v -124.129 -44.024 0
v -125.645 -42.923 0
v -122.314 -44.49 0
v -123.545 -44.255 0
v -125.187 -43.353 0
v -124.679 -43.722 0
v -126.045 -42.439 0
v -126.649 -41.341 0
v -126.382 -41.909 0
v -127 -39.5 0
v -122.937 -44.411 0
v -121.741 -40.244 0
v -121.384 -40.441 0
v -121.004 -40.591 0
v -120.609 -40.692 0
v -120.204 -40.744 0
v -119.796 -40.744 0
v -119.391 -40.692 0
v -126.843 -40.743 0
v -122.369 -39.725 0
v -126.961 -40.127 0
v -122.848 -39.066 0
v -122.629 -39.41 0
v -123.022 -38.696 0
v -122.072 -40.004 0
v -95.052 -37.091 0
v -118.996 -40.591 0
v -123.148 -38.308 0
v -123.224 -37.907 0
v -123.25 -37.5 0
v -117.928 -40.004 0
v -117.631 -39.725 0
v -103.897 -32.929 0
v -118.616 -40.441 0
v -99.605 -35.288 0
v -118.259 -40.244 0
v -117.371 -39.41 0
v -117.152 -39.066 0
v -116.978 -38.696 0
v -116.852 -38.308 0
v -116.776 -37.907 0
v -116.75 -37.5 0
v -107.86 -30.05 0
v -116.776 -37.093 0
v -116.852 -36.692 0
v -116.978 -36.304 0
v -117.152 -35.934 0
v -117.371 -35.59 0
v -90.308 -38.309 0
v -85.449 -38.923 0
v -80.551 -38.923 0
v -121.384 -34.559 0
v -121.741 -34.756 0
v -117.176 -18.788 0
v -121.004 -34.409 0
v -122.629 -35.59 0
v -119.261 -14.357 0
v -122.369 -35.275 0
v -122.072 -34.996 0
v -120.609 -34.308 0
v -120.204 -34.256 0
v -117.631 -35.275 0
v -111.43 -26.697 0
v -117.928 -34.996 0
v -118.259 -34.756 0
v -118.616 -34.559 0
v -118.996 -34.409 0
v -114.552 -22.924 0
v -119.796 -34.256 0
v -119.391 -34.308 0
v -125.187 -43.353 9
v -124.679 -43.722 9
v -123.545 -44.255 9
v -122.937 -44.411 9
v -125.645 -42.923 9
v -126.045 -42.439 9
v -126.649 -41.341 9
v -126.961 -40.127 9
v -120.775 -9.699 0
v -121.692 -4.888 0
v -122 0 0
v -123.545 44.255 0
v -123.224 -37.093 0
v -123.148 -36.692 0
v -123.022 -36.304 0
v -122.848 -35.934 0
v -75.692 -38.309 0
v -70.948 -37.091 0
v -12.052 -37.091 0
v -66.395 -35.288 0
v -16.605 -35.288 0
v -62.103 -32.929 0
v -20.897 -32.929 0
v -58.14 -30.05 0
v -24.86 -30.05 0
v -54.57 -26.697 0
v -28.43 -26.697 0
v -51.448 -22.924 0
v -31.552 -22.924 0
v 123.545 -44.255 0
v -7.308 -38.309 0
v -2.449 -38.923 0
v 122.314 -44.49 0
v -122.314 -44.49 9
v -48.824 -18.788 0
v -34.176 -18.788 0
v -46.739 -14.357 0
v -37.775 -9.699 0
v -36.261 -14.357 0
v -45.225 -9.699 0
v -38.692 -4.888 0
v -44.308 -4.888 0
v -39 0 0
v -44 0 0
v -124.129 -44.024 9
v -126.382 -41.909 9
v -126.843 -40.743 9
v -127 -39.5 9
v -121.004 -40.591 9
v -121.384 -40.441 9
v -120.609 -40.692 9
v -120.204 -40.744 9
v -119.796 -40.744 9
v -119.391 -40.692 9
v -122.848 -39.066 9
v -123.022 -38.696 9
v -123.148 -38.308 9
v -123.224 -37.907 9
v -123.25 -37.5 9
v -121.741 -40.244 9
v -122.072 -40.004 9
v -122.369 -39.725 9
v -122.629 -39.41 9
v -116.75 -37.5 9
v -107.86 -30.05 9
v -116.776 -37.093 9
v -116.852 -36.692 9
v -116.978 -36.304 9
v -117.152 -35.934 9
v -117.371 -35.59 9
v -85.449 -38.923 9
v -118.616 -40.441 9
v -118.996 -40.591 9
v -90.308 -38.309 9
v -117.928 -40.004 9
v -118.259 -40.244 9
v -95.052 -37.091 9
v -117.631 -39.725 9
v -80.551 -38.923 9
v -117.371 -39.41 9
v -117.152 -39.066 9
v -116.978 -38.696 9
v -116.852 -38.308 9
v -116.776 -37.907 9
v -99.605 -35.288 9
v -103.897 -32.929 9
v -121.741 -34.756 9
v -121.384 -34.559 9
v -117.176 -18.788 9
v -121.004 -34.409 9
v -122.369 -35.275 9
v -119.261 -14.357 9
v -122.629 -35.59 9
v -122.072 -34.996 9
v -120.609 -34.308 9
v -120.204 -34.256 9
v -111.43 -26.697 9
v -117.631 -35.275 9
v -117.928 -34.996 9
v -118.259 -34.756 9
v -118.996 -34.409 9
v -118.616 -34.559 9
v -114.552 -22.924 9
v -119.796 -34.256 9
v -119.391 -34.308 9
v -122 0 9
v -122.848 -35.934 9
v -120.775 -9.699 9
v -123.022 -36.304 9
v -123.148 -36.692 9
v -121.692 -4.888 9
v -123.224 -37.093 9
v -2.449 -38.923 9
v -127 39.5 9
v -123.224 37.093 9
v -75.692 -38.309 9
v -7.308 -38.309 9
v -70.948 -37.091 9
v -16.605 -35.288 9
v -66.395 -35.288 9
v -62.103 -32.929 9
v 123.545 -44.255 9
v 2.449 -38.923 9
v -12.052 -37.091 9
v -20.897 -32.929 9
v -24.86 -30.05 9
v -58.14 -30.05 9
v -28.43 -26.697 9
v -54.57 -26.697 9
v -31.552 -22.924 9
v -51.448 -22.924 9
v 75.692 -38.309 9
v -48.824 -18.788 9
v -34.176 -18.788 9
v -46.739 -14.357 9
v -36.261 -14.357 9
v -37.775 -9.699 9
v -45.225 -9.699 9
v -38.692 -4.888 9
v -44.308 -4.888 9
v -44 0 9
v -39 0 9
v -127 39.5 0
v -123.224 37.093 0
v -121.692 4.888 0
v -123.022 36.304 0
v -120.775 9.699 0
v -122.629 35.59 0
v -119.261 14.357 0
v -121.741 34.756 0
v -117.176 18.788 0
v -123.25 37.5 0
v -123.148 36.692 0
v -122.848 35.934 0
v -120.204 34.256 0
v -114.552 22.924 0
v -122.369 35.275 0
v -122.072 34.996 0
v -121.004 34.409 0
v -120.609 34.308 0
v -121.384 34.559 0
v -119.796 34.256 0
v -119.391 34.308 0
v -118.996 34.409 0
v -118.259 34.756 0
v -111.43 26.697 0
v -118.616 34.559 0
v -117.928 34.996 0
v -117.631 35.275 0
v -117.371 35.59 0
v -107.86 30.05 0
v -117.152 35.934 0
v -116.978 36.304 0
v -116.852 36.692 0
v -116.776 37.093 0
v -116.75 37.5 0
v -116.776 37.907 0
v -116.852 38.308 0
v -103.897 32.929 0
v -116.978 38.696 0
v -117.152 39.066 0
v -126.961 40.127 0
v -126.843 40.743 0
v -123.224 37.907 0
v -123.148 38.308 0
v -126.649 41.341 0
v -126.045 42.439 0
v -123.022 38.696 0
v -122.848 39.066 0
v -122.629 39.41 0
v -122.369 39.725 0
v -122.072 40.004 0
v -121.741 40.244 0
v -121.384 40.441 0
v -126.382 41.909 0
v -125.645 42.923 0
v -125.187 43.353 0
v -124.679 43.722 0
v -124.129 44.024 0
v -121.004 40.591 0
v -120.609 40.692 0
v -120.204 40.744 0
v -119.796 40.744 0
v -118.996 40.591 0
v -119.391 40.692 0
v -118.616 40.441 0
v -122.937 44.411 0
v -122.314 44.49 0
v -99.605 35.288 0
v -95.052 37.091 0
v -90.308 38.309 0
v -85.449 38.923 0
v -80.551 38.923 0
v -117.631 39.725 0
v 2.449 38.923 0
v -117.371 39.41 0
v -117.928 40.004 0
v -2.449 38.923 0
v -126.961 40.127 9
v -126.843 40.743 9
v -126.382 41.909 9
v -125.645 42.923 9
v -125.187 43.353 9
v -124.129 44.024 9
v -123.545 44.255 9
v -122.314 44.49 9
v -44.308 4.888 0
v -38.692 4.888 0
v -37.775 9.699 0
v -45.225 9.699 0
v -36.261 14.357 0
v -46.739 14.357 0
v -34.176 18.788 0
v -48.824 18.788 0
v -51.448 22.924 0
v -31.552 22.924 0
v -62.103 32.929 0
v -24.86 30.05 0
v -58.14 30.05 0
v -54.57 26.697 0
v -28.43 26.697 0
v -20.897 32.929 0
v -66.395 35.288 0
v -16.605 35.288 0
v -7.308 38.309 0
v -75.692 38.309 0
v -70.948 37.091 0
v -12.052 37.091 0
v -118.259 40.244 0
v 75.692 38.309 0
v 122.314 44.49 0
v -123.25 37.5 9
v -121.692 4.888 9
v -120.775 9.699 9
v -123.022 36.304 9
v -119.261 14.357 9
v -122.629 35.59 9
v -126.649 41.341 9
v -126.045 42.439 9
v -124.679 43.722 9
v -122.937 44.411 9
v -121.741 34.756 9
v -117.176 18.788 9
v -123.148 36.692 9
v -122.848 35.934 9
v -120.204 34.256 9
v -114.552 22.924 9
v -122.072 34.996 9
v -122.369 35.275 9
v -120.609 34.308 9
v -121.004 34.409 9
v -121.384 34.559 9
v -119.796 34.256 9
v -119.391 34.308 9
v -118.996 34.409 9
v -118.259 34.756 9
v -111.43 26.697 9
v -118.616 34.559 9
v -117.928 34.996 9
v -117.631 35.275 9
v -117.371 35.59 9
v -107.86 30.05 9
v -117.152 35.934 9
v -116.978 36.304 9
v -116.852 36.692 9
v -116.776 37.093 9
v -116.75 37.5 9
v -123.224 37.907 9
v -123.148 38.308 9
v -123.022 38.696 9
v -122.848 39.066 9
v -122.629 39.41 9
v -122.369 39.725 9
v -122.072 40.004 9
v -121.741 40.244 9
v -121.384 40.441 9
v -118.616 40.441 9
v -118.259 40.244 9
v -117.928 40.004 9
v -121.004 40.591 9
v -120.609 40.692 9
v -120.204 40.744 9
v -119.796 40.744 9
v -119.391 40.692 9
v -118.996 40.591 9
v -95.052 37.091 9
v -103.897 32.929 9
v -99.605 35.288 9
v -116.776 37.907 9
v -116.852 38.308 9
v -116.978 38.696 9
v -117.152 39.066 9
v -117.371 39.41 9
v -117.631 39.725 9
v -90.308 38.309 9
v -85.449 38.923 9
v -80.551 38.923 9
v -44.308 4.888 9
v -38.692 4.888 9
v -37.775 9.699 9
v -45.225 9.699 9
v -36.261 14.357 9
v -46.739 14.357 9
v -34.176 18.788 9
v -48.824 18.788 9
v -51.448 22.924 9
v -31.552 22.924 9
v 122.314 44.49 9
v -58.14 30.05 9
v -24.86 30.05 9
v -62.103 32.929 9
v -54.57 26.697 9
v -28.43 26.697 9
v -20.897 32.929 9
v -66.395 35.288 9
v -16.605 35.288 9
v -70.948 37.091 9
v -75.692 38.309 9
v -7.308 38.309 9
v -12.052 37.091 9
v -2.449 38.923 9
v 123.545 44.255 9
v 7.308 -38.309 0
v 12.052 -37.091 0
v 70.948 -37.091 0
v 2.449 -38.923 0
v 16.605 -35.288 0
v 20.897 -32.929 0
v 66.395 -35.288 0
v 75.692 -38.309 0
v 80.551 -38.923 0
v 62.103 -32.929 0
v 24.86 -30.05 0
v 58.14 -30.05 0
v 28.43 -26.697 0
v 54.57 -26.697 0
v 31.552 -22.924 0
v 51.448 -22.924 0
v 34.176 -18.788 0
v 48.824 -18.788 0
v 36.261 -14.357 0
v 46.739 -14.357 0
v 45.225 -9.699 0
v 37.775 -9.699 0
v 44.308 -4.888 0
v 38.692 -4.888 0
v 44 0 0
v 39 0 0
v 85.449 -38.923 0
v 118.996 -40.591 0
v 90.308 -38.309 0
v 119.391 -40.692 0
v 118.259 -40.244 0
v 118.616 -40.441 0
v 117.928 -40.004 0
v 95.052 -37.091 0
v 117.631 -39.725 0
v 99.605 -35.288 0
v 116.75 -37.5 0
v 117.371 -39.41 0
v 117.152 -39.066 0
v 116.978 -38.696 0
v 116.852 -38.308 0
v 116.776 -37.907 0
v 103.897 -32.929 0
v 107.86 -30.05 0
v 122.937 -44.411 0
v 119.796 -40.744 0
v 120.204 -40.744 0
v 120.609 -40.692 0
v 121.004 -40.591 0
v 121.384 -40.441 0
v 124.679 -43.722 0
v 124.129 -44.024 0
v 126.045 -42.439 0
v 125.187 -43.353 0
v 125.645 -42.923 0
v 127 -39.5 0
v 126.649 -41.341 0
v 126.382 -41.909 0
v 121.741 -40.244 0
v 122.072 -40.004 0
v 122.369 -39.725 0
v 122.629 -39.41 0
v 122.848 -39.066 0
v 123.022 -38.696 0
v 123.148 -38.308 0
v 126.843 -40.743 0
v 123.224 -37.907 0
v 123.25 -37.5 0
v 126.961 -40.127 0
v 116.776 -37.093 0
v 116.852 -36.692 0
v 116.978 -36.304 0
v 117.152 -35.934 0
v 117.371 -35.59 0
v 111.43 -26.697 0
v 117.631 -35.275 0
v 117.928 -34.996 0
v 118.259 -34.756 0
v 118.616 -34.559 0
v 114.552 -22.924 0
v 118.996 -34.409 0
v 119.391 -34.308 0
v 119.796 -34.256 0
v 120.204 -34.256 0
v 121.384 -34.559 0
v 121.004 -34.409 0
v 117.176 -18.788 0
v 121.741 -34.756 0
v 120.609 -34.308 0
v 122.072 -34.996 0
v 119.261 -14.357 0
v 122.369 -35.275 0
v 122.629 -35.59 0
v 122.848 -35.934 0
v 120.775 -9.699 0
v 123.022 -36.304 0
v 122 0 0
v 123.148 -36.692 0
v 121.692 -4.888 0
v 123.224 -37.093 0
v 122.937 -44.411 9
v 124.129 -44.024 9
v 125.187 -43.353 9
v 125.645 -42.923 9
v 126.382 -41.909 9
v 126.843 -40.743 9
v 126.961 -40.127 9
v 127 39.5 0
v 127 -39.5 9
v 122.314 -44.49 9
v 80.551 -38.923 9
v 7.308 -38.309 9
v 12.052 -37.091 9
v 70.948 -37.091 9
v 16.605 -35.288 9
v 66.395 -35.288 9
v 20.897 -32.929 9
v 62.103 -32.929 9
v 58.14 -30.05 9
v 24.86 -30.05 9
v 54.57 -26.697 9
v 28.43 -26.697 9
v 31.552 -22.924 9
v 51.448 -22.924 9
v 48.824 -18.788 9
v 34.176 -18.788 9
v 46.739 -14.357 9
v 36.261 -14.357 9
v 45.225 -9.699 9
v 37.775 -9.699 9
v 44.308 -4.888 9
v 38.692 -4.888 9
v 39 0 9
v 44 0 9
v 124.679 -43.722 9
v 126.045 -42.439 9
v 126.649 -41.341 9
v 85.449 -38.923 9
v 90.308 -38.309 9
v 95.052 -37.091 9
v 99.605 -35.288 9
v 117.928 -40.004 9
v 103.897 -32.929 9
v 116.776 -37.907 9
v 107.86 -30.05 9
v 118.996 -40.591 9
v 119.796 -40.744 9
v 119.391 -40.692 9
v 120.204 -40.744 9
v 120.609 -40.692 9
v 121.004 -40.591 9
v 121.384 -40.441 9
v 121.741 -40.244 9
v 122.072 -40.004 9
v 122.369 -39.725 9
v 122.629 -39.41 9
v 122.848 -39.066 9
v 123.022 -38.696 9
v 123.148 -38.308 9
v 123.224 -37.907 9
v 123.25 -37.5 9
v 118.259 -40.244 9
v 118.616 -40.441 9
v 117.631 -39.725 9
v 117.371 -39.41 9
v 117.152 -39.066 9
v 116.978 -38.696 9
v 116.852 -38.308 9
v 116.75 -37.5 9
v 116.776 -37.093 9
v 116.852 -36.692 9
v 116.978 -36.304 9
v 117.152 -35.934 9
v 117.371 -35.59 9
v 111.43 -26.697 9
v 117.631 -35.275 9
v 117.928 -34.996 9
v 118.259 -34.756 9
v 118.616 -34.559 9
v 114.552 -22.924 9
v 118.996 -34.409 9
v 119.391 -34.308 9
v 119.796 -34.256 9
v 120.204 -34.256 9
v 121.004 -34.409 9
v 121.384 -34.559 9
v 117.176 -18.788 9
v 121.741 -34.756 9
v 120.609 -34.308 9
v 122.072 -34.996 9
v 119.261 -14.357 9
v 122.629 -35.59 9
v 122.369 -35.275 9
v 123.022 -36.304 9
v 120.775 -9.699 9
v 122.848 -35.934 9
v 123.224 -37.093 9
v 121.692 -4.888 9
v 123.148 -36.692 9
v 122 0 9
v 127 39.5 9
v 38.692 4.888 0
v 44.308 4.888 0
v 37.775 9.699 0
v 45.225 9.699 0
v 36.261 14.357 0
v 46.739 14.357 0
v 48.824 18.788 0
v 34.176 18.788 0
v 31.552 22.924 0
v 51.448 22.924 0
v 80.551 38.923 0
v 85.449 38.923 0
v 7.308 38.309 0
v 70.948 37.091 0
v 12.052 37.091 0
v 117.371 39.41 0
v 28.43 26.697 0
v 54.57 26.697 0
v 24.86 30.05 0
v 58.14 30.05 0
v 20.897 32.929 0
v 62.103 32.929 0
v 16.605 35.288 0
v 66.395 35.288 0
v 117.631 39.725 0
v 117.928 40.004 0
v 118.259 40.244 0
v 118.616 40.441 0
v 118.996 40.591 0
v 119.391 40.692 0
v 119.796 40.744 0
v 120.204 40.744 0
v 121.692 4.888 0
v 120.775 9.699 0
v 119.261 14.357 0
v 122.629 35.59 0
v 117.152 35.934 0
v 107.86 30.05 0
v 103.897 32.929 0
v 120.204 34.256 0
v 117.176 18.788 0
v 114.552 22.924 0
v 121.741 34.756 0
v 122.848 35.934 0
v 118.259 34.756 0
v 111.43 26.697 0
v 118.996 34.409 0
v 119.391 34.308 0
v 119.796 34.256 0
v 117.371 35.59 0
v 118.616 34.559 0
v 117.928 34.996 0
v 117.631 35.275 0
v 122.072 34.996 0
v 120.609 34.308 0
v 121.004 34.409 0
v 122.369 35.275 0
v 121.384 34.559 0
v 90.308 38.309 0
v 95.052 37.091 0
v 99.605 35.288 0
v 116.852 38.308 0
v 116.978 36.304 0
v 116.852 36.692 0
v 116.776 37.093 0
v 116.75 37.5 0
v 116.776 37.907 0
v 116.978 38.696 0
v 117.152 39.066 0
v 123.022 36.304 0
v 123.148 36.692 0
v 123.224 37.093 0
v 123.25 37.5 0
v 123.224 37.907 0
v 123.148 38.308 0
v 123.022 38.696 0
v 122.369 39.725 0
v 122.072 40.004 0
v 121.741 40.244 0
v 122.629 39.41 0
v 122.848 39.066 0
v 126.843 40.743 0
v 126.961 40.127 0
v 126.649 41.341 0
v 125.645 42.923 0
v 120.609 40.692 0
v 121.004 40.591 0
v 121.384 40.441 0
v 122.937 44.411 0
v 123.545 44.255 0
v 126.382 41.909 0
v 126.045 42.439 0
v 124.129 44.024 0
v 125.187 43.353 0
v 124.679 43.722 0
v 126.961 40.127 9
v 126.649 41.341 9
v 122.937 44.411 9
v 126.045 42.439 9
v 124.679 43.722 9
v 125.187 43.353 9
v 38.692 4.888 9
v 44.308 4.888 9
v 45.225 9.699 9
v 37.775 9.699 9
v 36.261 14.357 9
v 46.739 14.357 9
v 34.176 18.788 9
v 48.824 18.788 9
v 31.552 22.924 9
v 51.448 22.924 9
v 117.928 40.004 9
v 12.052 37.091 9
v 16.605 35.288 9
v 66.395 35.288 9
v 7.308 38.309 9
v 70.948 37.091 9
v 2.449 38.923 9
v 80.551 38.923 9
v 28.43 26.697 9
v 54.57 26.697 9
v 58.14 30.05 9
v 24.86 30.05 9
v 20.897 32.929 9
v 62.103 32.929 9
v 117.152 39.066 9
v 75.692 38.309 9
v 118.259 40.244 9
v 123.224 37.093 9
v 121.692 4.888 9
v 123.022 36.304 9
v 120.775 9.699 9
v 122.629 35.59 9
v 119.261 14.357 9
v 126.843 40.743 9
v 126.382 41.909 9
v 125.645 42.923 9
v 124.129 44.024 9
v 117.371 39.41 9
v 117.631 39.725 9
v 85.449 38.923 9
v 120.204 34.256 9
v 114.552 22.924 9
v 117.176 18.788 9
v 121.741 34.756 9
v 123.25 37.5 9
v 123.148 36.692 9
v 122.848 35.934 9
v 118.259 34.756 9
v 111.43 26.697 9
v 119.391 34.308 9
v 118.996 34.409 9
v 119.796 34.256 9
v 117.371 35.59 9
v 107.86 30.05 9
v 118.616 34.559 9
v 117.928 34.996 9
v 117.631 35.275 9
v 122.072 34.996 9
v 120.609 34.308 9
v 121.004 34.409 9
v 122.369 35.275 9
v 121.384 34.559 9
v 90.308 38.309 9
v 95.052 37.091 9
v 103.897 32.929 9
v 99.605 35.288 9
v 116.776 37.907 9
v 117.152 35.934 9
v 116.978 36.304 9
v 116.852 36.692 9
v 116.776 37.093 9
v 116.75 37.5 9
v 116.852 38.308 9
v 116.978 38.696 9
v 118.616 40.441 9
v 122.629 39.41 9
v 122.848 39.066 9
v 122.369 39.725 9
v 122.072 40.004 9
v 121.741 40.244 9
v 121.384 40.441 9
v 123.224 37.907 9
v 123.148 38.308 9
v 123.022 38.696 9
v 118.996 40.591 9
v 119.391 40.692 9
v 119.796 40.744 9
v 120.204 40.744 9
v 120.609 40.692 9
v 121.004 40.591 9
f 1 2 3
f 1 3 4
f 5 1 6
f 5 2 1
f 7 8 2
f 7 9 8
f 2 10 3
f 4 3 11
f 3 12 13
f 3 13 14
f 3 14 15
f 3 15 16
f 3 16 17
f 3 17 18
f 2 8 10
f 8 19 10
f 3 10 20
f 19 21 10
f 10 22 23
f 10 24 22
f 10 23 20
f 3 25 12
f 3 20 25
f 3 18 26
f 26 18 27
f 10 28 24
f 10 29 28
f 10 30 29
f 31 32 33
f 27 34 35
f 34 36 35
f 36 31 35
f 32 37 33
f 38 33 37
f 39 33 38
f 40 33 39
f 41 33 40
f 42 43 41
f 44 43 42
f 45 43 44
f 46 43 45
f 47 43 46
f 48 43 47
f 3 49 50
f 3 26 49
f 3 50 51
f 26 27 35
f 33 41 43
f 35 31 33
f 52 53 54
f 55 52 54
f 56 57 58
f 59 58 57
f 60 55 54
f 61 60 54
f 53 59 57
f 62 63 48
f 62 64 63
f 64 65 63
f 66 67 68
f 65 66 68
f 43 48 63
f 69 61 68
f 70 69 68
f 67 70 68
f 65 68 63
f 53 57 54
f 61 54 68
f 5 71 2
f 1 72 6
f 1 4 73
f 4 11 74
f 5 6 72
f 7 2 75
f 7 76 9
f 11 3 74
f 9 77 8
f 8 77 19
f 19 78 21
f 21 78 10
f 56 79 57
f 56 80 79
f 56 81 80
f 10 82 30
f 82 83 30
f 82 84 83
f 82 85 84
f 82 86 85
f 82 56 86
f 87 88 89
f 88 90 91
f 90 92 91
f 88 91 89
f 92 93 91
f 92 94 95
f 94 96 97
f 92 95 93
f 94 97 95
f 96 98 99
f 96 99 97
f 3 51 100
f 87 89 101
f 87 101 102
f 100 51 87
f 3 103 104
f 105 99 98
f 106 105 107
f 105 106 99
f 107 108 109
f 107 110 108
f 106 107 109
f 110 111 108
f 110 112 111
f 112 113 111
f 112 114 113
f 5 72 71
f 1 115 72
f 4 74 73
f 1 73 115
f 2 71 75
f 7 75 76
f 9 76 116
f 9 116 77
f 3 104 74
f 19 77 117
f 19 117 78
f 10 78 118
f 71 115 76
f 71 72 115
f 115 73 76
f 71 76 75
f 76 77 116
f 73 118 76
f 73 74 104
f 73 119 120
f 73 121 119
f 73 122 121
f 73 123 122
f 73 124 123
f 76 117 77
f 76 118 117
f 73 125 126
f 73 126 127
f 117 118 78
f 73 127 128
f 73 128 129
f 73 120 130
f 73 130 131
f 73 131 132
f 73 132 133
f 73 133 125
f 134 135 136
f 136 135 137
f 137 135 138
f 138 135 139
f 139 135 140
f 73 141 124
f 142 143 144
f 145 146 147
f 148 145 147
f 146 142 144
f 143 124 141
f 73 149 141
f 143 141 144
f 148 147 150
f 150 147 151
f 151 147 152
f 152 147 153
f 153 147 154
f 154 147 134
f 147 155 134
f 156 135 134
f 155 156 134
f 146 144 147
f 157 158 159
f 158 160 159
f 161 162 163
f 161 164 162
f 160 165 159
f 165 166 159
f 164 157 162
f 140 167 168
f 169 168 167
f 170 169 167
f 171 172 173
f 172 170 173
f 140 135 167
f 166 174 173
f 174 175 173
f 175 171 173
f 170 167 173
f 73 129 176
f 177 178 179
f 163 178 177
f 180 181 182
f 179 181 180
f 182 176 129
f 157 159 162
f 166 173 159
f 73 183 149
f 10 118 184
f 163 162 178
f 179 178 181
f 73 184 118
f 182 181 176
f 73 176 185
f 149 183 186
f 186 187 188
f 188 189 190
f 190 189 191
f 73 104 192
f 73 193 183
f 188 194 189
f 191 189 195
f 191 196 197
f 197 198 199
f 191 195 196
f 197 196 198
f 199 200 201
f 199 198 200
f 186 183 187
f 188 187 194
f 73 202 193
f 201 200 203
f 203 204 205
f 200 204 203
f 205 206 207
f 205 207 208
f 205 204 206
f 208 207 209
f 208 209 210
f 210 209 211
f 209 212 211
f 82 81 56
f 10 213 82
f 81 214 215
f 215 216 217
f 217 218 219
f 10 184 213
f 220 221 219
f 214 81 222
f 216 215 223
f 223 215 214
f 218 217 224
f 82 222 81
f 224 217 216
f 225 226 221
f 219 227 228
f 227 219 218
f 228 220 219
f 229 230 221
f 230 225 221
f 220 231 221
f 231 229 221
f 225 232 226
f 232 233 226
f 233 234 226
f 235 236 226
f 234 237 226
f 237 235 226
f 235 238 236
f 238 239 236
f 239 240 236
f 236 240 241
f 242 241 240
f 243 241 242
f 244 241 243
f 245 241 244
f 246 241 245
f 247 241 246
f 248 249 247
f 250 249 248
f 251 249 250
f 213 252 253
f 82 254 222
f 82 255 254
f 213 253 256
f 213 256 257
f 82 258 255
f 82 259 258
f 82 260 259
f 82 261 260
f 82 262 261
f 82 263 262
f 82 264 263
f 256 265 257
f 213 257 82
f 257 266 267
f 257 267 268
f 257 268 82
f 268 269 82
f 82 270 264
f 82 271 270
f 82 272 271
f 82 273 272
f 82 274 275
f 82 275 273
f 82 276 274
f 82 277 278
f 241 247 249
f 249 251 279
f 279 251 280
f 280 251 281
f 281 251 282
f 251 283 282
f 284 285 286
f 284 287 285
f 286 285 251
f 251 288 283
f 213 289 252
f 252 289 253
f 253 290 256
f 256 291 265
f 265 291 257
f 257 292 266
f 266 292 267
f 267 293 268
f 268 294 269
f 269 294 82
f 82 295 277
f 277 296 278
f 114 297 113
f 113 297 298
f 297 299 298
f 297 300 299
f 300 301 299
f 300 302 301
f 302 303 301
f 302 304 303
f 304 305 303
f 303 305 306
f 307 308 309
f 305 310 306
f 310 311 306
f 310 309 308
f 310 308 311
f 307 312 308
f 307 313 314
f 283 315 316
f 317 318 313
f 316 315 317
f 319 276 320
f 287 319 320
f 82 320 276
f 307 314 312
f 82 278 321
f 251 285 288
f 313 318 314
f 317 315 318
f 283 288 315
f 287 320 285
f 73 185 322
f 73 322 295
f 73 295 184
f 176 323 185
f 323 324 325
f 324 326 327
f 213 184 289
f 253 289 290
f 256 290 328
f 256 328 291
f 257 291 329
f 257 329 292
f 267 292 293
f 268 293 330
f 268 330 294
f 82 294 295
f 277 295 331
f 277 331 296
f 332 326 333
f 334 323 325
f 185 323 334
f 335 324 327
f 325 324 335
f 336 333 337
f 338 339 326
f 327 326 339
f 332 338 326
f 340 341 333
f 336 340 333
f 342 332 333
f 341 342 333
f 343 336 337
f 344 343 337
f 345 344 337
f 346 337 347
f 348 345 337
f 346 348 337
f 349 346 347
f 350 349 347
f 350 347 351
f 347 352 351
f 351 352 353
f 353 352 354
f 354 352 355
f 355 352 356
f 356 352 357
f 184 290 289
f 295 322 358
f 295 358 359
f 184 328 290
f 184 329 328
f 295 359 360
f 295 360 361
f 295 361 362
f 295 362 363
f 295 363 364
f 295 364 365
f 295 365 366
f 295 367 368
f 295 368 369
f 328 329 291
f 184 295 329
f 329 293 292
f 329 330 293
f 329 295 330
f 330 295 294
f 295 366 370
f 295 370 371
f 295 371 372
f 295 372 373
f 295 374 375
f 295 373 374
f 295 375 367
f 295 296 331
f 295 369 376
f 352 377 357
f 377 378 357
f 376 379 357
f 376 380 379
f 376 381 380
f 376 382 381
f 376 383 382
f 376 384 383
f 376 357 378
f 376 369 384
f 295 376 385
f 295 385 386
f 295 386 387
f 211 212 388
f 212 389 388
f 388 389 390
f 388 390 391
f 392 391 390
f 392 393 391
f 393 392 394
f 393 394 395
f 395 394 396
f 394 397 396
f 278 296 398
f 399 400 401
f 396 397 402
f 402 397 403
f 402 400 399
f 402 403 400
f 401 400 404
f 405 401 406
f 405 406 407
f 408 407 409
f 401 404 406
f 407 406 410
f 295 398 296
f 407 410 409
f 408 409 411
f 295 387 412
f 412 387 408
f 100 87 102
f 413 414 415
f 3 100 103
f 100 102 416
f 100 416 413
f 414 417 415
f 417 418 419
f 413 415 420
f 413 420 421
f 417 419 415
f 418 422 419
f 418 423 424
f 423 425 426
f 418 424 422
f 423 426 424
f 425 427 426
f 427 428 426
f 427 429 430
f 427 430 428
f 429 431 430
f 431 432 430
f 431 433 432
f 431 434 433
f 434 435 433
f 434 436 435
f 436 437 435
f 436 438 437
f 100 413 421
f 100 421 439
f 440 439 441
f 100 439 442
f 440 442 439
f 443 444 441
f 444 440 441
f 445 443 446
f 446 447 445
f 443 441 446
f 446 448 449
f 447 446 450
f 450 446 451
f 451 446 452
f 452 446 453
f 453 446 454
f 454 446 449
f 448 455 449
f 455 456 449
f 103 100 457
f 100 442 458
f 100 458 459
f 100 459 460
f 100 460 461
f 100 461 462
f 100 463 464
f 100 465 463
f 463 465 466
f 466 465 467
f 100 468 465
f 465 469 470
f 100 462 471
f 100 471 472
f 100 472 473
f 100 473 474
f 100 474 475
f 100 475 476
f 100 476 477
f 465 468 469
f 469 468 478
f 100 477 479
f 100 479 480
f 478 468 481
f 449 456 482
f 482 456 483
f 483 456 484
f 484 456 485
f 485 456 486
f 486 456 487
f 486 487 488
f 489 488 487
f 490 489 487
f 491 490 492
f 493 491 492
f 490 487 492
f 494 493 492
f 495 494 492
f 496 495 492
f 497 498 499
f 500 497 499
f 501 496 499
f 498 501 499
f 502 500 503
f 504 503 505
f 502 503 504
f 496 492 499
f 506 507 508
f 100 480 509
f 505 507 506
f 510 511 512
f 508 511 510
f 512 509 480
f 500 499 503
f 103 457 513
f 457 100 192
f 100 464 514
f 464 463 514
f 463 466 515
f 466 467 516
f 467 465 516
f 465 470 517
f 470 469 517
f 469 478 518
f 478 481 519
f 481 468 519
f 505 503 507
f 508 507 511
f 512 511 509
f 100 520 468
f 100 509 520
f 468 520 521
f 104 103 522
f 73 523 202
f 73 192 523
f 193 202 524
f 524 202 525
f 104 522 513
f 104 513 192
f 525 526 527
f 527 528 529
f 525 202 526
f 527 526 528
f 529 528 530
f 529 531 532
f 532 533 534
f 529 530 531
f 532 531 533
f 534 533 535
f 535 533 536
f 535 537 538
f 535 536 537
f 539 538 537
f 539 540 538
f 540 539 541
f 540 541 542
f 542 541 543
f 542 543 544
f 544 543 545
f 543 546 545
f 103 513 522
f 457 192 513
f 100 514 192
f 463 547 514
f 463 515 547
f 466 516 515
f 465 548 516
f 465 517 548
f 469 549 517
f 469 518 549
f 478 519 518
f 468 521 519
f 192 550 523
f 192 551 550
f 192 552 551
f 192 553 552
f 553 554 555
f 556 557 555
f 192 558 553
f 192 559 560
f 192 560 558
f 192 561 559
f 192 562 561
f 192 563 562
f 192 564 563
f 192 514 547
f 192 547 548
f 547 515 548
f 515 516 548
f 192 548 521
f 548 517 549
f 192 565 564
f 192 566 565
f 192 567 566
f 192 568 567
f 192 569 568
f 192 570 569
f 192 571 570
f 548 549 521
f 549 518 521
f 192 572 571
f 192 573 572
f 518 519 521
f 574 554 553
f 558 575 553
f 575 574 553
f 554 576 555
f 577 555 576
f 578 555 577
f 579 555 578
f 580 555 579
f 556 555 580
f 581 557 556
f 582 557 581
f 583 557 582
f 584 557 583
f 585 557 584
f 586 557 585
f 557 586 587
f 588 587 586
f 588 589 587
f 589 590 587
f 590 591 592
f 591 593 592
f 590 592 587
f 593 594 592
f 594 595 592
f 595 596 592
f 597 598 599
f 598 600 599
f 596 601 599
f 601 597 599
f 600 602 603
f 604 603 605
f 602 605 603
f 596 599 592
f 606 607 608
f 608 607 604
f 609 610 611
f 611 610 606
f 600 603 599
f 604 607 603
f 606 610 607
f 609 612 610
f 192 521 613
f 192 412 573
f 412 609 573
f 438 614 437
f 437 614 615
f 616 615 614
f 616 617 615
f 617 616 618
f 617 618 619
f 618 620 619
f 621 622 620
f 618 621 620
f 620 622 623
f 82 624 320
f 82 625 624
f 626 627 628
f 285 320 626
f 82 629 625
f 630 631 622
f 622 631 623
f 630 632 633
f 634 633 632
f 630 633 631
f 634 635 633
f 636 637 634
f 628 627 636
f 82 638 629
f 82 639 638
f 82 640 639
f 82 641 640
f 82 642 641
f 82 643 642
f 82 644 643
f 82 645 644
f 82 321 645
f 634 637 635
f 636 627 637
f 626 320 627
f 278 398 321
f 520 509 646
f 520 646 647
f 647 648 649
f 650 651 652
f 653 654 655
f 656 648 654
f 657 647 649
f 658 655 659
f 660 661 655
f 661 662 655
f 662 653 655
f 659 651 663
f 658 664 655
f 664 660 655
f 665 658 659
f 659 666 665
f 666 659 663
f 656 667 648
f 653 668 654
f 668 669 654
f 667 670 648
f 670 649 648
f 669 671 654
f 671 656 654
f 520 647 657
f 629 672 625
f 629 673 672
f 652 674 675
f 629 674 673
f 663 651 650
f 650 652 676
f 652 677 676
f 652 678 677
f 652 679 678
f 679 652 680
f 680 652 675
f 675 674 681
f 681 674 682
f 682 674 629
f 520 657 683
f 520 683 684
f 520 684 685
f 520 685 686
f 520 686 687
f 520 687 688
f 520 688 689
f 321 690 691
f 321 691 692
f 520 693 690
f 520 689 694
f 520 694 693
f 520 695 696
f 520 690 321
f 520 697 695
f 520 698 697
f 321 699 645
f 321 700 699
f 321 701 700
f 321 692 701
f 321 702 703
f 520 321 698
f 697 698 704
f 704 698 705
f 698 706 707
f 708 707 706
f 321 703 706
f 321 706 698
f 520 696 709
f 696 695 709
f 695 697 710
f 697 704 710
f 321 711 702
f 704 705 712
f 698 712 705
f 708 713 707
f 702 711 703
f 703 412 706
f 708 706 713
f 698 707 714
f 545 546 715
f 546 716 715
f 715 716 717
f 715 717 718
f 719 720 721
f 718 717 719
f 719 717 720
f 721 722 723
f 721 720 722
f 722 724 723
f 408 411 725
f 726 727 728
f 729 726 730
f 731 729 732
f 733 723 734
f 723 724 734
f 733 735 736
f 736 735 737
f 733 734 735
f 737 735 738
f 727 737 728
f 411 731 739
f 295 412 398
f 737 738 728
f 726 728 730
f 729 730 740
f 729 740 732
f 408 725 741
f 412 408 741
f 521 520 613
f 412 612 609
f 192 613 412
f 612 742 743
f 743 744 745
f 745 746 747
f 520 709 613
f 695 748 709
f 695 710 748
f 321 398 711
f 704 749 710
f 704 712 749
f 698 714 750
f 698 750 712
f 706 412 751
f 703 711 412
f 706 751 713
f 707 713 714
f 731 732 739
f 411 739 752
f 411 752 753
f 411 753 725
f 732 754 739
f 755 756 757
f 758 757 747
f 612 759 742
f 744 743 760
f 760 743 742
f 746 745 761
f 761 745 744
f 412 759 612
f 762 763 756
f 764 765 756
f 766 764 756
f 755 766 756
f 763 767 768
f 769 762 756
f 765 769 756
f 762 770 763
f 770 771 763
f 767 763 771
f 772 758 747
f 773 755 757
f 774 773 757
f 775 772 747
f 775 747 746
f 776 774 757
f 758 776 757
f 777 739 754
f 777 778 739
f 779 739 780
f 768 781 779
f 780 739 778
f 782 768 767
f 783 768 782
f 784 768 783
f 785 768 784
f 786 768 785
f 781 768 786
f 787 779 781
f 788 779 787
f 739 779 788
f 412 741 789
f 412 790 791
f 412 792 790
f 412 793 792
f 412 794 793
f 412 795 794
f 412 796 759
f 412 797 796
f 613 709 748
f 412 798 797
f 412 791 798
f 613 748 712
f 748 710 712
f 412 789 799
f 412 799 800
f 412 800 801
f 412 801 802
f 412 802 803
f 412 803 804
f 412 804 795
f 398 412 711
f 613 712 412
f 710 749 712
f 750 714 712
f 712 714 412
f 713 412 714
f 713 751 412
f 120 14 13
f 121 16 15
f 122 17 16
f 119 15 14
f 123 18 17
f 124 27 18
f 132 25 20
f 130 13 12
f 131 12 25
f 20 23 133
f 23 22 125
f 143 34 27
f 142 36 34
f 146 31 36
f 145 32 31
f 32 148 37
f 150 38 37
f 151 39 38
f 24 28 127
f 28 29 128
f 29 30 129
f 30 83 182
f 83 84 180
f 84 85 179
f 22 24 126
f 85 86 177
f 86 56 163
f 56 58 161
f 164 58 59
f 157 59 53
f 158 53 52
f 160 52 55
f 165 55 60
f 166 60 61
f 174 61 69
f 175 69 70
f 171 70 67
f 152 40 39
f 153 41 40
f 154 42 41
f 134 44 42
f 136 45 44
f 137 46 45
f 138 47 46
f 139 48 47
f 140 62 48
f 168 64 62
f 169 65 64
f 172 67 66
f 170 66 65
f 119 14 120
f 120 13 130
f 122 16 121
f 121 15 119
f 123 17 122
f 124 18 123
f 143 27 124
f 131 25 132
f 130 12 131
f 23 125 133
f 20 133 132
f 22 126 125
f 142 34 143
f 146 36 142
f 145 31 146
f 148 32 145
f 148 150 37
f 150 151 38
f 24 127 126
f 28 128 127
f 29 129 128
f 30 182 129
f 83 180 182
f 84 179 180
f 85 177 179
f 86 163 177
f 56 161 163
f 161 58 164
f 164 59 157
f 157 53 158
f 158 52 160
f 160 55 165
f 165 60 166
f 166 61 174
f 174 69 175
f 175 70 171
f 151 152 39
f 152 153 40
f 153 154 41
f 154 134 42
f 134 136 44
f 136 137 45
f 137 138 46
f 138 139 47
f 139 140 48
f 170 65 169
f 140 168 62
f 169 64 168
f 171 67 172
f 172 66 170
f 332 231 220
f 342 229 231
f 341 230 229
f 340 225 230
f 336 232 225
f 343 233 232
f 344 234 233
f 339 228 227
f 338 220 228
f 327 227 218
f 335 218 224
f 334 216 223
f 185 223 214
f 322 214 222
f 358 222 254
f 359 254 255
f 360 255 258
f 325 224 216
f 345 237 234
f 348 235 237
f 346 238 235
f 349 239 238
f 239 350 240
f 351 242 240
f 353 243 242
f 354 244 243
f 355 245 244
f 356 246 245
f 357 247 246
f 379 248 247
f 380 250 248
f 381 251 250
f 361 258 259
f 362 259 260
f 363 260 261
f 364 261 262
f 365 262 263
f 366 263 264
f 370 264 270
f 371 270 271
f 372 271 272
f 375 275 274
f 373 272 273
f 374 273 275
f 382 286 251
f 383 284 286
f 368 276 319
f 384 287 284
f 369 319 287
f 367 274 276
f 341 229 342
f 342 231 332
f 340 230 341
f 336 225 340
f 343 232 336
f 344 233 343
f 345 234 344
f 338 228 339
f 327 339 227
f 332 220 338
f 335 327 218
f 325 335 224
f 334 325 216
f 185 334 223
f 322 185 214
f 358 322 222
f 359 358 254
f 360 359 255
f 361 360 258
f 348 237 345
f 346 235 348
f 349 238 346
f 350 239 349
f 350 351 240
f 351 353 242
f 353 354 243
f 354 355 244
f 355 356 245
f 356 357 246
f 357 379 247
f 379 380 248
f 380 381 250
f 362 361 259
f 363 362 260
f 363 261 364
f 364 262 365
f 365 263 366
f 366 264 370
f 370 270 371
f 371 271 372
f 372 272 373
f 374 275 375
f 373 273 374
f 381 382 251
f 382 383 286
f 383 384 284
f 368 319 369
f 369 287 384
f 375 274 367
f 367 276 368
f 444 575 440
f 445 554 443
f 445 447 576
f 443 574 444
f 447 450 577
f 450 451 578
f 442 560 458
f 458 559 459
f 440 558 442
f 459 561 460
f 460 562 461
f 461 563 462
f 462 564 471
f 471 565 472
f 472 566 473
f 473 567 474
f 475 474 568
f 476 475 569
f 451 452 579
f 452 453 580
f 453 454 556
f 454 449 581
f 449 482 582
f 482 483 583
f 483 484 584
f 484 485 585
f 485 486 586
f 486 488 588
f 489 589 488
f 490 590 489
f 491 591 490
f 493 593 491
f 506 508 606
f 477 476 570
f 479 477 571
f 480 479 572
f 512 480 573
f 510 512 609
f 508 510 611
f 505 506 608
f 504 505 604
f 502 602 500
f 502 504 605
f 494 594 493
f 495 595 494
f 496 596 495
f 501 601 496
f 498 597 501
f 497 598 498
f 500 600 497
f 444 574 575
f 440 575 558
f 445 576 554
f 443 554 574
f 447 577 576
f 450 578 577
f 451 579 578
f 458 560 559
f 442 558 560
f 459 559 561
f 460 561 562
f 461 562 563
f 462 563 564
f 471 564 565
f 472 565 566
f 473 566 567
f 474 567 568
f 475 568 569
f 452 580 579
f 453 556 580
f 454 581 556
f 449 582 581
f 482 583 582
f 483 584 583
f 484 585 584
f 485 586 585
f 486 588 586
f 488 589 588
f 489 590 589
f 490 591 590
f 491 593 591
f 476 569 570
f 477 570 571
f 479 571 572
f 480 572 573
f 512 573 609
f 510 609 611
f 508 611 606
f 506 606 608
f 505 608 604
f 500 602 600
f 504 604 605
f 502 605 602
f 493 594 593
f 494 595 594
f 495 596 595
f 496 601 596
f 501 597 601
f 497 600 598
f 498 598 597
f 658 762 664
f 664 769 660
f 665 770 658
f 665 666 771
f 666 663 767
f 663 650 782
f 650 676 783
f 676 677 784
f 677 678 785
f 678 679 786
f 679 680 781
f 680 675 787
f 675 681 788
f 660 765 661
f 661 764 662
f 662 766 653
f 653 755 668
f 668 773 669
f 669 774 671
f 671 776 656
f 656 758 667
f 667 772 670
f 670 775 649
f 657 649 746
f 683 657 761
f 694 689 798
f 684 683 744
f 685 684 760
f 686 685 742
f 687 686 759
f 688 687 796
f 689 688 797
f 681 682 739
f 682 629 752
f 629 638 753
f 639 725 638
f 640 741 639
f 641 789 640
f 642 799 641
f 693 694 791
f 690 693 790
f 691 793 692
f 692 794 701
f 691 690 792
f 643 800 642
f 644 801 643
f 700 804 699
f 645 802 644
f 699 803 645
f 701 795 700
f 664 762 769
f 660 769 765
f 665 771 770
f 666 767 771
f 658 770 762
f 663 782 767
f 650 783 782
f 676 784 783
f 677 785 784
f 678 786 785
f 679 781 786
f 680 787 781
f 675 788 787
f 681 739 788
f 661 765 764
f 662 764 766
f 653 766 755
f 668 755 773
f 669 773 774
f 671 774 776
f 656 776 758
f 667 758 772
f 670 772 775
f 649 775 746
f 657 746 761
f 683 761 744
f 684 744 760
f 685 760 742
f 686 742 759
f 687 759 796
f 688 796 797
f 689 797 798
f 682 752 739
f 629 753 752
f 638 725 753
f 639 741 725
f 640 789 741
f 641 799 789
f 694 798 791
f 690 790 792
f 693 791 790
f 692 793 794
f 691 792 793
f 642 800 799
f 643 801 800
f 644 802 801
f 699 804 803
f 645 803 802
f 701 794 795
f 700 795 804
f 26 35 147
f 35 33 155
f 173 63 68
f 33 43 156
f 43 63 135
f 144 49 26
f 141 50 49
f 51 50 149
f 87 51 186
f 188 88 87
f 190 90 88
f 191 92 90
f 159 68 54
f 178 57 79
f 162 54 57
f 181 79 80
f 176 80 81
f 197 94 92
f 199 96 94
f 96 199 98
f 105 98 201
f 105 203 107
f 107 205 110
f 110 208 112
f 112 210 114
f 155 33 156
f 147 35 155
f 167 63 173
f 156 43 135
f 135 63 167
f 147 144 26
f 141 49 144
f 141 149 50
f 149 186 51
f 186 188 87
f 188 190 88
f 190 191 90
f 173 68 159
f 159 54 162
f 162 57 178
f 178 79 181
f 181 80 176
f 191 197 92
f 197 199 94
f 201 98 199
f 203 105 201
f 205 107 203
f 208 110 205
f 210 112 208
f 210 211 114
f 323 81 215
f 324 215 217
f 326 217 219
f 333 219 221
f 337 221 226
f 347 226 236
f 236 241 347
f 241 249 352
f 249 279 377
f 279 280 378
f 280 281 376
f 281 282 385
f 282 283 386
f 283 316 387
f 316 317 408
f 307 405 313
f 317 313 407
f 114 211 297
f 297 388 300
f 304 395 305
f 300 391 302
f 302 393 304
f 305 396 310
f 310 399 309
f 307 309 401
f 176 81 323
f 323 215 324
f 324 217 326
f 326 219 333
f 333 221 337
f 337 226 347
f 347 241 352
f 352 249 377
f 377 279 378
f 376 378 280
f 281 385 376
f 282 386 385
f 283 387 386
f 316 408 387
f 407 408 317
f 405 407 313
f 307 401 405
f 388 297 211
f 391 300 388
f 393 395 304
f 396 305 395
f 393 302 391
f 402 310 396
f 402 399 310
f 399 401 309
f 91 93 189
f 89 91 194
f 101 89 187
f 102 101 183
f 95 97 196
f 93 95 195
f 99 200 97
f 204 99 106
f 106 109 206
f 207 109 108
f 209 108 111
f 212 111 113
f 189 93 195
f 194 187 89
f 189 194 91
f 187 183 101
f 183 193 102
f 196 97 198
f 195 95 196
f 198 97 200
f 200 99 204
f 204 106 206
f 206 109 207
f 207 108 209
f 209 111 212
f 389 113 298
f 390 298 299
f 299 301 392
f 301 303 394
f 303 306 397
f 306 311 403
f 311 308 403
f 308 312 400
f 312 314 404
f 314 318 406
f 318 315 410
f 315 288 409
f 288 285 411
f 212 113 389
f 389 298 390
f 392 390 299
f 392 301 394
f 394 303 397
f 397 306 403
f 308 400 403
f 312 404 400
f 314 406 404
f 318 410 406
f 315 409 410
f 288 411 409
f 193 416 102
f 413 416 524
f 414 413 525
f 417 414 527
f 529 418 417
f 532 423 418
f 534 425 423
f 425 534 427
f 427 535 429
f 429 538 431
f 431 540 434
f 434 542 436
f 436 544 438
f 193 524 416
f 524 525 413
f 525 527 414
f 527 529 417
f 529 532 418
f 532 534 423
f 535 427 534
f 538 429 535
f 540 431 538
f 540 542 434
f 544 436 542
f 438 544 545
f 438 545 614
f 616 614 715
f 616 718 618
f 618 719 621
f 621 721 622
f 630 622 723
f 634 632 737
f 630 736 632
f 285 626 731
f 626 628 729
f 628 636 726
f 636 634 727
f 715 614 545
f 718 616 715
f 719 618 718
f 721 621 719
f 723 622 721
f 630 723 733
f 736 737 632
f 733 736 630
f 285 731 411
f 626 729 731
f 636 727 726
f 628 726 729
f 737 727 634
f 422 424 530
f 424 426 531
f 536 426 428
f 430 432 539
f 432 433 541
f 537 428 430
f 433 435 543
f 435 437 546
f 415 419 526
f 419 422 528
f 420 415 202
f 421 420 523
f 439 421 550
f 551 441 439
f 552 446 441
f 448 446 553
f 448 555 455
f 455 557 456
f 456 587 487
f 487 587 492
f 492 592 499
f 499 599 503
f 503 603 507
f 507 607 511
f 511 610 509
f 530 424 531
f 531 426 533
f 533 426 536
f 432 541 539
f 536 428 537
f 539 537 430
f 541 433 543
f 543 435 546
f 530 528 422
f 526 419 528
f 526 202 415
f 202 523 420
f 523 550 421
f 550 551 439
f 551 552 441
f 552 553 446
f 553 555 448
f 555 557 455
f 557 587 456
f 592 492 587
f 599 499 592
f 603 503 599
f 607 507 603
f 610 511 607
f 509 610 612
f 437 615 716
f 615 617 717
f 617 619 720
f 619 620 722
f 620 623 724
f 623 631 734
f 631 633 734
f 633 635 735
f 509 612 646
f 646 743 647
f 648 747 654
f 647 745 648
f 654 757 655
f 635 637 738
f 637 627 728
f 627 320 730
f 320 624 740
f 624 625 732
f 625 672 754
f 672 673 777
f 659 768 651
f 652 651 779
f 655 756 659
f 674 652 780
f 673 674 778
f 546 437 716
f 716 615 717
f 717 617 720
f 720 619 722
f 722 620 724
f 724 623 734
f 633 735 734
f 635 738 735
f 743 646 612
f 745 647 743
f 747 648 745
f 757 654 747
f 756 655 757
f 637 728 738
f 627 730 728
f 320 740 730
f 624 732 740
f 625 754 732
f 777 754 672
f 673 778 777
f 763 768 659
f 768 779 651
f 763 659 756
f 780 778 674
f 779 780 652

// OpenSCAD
$fn = 50;

difference() {
	union() {
		hull() {
			translate(v = [-122.0, 39.5, 0]) {
				cylinder(h = 9, r = 5);
			}
			translate(v = [122.0, 39.5, 0]) {
				cylinder(h = 9, r = 5);
			}
			translate(v = [-122.0, -39.5, 0]) {
				cylinder(h = 9, r = 5);
			}
			translate(v = [122.0, -39.5, 0]) {
				cylinder(h = 9, r = 5);
			}
		}
	}
	union() {
		translate(v = [-120.0, -37.5, -100.0]) {
			cylinder(h = 200, r = 3.25);
		}
		translate(v = [-120.0, 37.5, -100.0]) {
			cylinder(h = 200, r = 3.25);
		}
		translate(v = [120.0, -37.5, -100.0]) {
			cylinder(h = 200, r = 3.25);
		}
		translate(v = [120.0, 37.5, -100.0]) {
			cylinder(h = 200, r = 3.25);
		}
		translate(v = [-120.0, -37.5, -100.0]) {
			cylinder(h = 200, r = 1.8);
		}
		translate(v = [-120.0, 37.5, -100.0]) {
			cylinder(h = 200, r = 1.8);
		}
		translate(v = [120.0, -37.5, -100.0]) {
			cylinder(h = 200, r = 1.8);
		}
		translate(v = [120.0, 37.5, -100.0]) {
			cylinder(h = 200, r = 1.8);
		}
		translate(v = [-83.0, 0, 0.0]) {
			cylinder(h = 9, r = 39.0);
		}
		cylinder(h = 9, r = 39.0);
		translate(v = [83.0, 0, 0.0]) {
			cylinder(h = 9, r = 39.0);
		}
	}
}
